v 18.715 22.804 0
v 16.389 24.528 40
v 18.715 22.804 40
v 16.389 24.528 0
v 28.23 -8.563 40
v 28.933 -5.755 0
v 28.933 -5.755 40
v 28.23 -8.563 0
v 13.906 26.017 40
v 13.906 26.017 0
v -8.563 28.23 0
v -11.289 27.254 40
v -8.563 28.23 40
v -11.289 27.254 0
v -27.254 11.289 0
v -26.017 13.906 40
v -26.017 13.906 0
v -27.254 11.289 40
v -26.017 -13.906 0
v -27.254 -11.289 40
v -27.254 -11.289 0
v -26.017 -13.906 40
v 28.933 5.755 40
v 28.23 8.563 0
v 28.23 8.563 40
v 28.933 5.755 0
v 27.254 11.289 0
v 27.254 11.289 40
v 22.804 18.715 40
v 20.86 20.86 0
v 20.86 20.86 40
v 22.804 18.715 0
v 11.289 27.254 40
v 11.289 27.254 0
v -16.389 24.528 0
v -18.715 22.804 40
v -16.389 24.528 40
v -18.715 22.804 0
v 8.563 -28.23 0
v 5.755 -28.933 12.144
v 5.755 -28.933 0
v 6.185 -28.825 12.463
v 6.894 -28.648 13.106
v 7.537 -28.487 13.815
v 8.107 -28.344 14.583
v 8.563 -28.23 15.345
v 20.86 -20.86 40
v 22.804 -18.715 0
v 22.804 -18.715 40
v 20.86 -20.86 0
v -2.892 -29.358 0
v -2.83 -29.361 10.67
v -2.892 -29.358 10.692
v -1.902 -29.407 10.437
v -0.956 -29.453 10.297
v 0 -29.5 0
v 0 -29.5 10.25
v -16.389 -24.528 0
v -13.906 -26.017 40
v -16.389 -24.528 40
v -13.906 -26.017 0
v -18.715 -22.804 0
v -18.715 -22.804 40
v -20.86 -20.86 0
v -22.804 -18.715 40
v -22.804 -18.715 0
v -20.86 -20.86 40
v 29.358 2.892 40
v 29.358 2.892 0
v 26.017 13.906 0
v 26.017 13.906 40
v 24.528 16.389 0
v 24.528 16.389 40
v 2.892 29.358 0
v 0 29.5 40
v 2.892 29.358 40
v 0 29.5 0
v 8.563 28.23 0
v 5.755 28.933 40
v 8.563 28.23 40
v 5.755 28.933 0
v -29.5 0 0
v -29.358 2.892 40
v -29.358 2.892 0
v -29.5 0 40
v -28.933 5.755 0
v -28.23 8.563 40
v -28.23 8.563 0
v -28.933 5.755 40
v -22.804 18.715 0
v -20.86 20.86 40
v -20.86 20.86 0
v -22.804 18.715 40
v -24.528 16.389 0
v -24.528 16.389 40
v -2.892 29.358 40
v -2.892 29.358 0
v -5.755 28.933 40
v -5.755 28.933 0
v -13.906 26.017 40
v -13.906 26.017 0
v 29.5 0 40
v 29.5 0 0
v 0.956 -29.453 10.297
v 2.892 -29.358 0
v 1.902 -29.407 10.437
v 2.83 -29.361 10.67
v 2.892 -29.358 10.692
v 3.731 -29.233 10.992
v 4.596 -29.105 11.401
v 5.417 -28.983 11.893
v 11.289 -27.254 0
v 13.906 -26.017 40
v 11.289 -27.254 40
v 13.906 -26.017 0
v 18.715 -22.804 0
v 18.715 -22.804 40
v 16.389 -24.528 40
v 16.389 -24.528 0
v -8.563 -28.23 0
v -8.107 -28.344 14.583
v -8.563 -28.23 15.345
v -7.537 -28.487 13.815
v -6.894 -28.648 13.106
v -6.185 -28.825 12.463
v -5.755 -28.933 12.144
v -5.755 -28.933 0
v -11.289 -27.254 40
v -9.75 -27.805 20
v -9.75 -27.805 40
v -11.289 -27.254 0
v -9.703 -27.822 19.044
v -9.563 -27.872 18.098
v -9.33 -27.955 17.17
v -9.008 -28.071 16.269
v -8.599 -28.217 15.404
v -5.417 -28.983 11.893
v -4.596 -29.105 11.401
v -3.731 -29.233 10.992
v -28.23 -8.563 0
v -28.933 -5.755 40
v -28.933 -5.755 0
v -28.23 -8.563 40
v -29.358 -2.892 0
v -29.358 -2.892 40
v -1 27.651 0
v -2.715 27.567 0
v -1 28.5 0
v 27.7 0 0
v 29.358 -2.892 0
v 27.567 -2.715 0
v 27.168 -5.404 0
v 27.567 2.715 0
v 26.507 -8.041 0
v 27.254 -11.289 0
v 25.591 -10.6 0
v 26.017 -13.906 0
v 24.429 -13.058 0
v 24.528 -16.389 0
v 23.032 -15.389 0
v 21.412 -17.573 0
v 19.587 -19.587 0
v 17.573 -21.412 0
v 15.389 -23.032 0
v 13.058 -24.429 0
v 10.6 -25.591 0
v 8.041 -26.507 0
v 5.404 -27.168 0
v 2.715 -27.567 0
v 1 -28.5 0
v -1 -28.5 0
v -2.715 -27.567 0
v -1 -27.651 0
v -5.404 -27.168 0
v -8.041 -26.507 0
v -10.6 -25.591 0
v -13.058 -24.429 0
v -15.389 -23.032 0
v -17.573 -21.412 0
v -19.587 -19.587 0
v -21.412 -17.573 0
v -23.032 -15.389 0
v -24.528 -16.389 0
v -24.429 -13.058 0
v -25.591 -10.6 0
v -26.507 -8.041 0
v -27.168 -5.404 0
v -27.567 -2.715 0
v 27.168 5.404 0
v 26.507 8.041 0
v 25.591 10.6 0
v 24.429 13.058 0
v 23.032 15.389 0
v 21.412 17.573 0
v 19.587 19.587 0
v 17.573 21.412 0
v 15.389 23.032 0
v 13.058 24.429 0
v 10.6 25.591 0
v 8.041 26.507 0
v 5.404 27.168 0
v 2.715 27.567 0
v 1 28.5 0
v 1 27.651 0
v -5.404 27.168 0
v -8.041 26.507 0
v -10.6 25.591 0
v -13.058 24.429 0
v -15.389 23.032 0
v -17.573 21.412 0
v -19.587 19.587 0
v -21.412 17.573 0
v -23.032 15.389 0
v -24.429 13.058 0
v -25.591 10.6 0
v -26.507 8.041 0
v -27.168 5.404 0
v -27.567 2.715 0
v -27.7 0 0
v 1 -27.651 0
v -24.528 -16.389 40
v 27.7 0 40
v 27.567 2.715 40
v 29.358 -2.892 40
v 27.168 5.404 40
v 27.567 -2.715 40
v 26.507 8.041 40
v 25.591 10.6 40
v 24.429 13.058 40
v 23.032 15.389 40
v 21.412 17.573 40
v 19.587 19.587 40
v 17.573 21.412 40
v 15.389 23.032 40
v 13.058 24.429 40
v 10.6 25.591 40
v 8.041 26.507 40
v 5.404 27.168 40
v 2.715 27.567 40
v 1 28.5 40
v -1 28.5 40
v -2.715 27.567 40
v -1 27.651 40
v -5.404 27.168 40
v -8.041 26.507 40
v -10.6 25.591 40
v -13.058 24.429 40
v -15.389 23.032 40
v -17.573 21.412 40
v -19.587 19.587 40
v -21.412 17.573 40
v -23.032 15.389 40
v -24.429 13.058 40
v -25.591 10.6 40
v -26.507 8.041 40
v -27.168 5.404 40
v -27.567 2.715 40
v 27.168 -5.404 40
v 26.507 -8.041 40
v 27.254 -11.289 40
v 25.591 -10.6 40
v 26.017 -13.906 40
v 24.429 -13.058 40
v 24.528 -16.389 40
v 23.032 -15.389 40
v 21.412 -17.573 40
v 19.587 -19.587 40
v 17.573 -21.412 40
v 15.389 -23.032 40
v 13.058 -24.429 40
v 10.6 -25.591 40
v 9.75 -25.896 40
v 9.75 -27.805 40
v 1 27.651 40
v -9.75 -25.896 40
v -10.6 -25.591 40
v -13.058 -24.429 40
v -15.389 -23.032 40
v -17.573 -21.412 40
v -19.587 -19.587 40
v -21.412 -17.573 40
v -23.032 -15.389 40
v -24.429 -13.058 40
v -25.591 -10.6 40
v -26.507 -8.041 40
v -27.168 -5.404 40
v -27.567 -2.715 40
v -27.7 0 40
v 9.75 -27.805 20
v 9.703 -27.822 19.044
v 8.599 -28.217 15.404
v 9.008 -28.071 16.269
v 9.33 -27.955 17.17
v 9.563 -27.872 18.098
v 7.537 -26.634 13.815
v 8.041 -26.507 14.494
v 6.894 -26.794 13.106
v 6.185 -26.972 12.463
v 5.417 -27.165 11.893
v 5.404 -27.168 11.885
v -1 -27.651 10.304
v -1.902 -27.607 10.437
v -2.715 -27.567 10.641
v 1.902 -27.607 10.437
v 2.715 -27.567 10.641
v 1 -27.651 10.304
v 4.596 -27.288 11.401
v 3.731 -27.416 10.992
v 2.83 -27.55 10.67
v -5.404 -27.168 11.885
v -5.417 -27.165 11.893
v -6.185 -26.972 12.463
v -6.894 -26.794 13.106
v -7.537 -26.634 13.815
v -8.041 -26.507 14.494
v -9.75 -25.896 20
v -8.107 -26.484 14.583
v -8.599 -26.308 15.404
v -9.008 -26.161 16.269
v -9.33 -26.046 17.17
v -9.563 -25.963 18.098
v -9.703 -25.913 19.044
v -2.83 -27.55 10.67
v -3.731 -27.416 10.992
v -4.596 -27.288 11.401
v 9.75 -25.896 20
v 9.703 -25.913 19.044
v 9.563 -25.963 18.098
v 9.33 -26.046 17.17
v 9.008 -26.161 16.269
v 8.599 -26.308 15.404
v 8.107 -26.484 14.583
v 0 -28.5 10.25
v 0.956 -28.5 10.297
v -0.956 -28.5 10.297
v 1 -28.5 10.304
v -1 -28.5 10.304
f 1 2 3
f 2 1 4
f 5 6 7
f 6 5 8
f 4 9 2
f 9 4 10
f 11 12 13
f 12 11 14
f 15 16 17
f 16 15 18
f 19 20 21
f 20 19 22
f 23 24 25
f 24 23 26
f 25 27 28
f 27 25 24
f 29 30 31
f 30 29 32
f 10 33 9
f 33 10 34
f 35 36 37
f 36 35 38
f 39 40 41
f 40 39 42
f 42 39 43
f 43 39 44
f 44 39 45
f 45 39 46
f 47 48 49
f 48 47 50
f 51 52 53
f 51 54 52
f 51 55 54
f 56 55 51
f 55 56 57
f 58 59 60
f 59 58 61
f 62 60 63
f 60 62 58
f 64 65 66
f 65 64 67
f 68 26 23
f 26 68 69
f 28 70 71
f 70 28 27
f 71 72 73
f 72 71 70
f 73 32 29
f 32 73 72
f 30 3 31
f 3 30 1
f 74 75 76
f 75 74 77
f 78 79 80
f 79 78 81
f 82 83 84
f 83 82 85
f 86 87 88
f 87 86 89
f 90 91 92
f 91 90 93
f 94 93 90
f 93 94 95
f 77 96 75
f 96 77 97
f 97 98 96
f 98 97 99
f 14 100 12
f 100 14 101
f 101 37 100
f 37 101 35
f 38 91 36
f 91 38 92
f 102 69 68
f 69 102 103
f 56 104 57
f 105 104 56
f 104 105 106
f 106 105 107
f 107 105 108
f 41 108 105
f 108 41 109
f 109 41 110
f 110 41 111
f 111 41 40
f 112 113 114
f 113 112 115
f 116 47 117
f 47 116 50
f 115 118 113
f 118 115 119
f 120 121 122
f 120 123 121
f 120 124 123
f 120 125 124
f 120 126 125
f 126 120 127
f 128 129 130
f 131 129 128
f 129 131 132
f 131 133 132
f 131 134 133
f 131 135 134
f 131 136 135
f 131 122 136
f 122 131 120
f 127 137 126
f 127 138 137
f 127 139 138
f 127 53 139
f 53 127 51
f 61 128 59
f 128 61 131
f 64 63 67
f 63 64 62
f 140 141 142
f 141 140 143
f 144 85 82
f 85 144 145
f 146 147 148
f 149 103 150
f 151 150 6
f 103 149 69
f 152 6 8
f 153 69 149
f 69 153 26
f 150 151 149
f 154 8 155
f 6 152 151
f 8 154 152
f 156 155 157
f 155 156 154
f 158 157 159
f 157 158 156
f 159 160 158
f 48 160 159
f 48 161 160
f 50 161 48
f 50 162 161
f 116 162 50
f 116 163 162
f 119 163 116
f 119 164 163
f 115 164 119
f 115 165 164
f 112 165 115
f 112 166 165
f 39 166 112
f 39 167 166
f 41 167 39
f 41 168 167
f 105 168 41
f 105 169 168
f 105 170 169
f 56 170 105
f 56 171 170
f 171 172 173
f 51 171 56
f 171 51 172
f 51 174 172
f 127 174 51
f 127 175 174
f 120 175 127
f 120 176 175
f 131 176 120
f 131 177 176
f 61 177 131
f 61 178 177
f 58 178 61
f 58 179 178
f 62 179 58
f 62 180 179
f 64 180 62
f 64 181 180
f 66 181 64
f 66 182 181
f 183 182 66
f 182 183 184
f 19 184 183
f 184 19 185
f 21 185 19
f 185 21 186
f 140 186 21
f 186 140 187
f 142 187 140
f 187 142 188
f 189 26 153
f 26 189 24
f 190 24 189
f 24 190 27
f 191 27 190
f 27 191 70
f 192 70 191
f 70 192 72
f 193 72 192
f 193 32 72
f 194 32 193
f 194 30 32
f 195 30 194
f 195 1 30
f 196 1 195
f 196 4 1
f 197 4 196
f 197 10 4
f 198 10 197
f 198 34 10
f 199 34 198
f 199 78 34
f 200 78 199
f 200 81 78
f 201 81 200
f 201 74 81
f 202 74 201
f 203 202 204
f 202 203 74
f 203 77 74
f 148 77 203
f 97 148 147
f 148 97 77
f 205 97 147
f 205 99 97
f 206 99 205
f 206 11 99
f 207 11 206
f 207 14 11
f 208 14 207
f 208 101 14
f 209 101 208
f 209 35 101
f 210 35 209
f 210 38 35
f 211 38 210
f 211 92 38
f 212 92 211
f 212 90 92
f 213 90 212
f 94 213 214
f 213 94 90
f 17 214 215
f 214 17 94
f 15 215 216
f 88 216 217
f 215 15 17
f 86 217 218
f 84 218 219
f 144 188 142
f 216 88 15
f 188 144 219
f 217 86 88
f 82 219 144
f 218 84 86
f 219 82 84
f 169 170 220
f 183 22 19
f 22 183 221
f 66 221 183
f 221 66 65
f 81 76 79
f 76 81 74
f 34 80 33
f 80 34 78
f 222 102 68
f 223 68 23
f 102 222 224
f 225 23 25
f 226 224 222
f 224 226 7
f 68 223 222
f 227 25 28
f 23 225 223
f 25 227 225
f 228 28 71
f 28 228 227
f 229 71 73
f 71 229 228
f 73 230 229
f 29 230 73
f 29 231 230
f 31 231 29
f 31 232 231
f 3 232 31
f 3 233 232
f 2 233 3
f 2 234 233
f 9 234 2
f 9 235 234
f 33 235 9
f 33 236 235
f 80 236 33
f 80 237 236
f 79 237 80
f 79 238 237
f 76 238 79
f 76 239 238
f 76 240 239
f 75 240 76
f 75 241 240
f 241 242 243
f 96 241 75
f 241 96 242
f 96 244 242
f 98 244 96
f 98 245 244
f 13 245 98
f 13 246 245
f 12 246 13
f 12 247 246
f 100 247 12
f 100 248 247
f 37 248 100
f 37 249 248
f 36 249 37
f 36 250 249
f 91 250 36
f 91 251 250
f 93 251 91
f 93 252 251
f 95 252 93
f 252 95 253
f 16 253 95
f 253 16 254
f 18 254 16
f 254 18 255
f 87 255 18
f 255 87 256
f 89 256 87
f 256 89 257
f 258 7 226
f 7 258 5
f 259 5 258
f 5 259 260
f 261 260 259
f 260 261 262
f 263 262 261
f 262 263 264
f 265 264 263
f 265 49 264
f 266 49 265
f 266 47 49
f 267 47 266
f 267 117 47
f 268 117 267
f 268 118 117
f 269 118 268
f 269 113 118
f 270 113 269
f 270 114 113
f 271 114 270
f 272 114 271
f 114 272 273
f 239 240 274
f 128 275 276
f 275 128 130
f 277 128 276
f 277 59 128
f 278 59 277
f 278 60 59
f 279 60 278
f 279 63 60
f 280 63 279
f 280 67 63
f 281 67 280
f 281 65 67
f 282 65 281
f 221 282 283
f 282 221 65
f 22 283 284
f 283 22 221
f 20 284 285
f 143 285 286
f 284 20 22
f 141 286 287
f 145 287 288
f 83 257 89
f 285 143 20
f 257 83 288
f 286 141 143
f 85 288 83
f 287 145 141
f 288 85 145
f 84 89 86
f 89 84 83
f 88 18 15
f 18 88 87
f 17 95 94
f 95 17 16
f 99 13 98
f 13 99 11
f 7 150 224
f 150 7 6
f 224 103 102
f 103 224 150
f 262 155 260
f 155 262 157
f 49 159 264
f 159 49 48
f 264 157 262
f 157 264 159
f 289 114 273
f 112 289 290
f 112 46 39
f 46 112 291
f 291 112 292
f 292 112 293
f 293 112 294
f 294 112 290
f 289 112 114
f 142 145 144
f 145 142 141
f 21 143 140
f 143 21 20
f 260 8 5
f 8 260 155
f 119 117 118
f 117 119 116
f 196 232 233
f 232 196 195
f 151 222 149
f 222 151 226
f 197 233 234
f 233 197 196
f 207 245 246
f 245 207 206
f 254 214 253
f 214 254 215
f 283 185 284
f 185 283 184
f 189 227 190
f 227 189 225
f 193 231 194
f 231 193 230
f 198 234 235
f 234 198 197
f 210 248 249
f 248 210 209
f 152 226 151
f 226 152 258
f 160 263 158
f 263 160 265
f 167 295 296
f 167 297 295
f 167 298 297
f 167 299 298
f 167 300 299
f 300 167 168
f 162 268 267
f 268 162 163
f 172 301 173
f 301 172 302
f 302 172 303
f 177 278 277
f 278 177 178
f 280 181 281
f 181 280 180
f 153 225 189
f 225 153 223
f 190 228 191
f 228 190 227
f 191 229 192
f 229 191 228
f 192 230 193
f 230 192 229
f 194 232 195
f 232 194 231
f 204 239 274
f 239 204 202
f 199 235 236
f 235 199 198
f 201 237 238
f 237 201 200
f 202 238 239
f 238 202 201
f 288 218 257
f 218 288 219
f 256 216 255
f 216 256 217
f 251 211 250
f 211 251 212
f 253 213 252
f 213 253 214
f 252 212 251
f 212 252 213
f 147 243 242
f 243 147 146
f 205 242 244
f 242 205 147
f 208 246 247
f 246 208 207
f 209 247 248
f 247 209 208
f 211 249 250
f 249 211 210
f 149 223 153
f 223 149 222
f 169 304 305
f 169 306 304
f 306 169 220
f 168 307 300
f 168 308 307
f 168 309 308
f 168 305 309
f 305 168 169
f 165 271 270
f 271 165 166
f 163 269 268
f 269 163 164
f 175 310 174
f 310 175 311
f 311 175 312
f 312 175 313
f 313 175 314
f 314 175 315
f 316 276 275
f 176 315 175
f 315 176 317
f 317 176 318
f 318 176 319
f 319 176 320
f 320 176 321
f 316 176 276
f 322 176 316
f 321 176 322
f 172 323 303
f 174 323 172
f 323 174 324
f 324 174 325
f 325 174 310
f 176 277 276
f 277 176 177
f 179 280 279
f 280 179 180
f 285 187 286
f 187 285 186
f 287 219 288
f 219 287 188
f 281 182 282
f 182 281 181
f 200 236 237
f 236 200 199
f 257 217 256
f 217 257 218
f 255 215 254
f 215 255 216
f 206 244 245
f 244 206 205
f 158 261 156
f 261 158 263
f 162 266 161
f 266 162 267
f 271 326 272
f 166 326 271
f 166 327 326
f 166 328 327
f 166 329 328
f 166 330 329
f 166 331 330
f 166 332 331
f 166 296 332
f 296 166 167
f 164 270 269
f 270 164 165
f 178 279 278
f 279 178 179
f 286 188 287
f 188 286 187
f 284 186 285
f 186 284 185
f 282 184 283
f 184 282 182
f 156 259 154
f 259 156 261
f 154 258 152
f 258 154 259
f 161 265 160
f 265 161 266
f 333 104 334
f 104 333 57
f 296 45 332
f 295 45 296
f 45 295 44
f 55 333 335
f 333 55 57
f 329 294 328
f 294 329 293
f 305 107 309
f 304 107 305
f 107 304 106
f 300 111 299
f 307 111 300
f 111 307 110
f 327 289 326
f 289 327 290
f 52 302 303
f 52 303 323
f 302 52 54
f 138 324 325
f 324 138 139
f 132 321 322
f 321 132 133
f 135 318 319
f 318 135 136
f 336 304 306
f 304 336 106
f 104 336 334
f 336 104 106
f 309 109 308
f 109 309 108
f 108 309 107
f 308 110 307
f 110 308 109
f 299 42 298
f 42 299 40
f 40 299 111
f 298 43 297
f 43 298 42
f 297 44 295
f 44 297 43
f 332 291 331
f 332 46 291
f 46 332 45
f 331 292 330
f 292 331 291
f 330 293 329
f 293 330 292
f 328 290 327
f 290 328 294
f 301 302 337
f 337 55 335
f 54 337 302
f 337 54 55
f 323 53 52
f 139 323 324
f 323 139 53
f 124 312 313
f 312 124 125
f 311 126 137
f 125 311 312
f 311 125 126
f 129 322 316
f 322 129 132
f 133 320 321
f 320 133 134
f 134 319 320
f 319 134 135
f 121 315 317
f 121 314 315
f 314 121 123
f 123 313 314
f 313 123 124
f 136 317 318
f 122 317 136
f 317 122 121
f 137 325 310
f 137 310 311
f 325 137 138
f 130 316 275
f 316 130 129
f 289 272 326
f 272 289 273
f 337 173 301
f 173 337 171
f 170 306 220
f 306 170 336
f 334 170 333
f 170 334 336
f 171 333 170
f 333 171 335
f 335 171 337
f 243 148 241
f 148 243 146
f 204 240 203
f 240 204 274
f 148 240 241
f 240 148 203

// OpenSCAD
// Definition size of housing
// **************************

length =140;
width      = 75;    
height      = 10;     
studheight    = 10;

cutoutlength = 110;
cutoutwidth = 52;

flangewidth = 22;
flangeheight = 4;



//Definition of circle angular resolution
resol        = 64;           // Identical to housing !!!



difference () {
    
    union() {

        translate ([0,0,0]) cylinder (h=40, r=29.5, $fn=resol); //cam band
        translate ([0,0,0]) cylinder (h=15, r=27, $fn=resol); //mount boss od 19.5
        /*translate ([0,0,0]) cube ([70,8,30], center=true);*/



    }
    
    

    translate ([0,0,0]) cylinder (h=42, r=27.7, $fn=resol); //hole for cam - 55mm od

    translate ([0,-20,20]) rotate ([90,90,0]) cylinder (h=15, r=9.75, $fn=resol); //mount boss od 19.5
    
    translate ([0,-20,35]) cube ([19.5,19.5,30], center=true);

    translate ([0,-27.5,0]) cube ([2,2,42], center=true);
    translate ([0,27.5,20]) cube ([2,2,42], center=true);


    /*translate ([-50,0,-45]) rotate ([0,90,0]) cylinder (h=100, r=55, $fn=resol); //boss*/


}
